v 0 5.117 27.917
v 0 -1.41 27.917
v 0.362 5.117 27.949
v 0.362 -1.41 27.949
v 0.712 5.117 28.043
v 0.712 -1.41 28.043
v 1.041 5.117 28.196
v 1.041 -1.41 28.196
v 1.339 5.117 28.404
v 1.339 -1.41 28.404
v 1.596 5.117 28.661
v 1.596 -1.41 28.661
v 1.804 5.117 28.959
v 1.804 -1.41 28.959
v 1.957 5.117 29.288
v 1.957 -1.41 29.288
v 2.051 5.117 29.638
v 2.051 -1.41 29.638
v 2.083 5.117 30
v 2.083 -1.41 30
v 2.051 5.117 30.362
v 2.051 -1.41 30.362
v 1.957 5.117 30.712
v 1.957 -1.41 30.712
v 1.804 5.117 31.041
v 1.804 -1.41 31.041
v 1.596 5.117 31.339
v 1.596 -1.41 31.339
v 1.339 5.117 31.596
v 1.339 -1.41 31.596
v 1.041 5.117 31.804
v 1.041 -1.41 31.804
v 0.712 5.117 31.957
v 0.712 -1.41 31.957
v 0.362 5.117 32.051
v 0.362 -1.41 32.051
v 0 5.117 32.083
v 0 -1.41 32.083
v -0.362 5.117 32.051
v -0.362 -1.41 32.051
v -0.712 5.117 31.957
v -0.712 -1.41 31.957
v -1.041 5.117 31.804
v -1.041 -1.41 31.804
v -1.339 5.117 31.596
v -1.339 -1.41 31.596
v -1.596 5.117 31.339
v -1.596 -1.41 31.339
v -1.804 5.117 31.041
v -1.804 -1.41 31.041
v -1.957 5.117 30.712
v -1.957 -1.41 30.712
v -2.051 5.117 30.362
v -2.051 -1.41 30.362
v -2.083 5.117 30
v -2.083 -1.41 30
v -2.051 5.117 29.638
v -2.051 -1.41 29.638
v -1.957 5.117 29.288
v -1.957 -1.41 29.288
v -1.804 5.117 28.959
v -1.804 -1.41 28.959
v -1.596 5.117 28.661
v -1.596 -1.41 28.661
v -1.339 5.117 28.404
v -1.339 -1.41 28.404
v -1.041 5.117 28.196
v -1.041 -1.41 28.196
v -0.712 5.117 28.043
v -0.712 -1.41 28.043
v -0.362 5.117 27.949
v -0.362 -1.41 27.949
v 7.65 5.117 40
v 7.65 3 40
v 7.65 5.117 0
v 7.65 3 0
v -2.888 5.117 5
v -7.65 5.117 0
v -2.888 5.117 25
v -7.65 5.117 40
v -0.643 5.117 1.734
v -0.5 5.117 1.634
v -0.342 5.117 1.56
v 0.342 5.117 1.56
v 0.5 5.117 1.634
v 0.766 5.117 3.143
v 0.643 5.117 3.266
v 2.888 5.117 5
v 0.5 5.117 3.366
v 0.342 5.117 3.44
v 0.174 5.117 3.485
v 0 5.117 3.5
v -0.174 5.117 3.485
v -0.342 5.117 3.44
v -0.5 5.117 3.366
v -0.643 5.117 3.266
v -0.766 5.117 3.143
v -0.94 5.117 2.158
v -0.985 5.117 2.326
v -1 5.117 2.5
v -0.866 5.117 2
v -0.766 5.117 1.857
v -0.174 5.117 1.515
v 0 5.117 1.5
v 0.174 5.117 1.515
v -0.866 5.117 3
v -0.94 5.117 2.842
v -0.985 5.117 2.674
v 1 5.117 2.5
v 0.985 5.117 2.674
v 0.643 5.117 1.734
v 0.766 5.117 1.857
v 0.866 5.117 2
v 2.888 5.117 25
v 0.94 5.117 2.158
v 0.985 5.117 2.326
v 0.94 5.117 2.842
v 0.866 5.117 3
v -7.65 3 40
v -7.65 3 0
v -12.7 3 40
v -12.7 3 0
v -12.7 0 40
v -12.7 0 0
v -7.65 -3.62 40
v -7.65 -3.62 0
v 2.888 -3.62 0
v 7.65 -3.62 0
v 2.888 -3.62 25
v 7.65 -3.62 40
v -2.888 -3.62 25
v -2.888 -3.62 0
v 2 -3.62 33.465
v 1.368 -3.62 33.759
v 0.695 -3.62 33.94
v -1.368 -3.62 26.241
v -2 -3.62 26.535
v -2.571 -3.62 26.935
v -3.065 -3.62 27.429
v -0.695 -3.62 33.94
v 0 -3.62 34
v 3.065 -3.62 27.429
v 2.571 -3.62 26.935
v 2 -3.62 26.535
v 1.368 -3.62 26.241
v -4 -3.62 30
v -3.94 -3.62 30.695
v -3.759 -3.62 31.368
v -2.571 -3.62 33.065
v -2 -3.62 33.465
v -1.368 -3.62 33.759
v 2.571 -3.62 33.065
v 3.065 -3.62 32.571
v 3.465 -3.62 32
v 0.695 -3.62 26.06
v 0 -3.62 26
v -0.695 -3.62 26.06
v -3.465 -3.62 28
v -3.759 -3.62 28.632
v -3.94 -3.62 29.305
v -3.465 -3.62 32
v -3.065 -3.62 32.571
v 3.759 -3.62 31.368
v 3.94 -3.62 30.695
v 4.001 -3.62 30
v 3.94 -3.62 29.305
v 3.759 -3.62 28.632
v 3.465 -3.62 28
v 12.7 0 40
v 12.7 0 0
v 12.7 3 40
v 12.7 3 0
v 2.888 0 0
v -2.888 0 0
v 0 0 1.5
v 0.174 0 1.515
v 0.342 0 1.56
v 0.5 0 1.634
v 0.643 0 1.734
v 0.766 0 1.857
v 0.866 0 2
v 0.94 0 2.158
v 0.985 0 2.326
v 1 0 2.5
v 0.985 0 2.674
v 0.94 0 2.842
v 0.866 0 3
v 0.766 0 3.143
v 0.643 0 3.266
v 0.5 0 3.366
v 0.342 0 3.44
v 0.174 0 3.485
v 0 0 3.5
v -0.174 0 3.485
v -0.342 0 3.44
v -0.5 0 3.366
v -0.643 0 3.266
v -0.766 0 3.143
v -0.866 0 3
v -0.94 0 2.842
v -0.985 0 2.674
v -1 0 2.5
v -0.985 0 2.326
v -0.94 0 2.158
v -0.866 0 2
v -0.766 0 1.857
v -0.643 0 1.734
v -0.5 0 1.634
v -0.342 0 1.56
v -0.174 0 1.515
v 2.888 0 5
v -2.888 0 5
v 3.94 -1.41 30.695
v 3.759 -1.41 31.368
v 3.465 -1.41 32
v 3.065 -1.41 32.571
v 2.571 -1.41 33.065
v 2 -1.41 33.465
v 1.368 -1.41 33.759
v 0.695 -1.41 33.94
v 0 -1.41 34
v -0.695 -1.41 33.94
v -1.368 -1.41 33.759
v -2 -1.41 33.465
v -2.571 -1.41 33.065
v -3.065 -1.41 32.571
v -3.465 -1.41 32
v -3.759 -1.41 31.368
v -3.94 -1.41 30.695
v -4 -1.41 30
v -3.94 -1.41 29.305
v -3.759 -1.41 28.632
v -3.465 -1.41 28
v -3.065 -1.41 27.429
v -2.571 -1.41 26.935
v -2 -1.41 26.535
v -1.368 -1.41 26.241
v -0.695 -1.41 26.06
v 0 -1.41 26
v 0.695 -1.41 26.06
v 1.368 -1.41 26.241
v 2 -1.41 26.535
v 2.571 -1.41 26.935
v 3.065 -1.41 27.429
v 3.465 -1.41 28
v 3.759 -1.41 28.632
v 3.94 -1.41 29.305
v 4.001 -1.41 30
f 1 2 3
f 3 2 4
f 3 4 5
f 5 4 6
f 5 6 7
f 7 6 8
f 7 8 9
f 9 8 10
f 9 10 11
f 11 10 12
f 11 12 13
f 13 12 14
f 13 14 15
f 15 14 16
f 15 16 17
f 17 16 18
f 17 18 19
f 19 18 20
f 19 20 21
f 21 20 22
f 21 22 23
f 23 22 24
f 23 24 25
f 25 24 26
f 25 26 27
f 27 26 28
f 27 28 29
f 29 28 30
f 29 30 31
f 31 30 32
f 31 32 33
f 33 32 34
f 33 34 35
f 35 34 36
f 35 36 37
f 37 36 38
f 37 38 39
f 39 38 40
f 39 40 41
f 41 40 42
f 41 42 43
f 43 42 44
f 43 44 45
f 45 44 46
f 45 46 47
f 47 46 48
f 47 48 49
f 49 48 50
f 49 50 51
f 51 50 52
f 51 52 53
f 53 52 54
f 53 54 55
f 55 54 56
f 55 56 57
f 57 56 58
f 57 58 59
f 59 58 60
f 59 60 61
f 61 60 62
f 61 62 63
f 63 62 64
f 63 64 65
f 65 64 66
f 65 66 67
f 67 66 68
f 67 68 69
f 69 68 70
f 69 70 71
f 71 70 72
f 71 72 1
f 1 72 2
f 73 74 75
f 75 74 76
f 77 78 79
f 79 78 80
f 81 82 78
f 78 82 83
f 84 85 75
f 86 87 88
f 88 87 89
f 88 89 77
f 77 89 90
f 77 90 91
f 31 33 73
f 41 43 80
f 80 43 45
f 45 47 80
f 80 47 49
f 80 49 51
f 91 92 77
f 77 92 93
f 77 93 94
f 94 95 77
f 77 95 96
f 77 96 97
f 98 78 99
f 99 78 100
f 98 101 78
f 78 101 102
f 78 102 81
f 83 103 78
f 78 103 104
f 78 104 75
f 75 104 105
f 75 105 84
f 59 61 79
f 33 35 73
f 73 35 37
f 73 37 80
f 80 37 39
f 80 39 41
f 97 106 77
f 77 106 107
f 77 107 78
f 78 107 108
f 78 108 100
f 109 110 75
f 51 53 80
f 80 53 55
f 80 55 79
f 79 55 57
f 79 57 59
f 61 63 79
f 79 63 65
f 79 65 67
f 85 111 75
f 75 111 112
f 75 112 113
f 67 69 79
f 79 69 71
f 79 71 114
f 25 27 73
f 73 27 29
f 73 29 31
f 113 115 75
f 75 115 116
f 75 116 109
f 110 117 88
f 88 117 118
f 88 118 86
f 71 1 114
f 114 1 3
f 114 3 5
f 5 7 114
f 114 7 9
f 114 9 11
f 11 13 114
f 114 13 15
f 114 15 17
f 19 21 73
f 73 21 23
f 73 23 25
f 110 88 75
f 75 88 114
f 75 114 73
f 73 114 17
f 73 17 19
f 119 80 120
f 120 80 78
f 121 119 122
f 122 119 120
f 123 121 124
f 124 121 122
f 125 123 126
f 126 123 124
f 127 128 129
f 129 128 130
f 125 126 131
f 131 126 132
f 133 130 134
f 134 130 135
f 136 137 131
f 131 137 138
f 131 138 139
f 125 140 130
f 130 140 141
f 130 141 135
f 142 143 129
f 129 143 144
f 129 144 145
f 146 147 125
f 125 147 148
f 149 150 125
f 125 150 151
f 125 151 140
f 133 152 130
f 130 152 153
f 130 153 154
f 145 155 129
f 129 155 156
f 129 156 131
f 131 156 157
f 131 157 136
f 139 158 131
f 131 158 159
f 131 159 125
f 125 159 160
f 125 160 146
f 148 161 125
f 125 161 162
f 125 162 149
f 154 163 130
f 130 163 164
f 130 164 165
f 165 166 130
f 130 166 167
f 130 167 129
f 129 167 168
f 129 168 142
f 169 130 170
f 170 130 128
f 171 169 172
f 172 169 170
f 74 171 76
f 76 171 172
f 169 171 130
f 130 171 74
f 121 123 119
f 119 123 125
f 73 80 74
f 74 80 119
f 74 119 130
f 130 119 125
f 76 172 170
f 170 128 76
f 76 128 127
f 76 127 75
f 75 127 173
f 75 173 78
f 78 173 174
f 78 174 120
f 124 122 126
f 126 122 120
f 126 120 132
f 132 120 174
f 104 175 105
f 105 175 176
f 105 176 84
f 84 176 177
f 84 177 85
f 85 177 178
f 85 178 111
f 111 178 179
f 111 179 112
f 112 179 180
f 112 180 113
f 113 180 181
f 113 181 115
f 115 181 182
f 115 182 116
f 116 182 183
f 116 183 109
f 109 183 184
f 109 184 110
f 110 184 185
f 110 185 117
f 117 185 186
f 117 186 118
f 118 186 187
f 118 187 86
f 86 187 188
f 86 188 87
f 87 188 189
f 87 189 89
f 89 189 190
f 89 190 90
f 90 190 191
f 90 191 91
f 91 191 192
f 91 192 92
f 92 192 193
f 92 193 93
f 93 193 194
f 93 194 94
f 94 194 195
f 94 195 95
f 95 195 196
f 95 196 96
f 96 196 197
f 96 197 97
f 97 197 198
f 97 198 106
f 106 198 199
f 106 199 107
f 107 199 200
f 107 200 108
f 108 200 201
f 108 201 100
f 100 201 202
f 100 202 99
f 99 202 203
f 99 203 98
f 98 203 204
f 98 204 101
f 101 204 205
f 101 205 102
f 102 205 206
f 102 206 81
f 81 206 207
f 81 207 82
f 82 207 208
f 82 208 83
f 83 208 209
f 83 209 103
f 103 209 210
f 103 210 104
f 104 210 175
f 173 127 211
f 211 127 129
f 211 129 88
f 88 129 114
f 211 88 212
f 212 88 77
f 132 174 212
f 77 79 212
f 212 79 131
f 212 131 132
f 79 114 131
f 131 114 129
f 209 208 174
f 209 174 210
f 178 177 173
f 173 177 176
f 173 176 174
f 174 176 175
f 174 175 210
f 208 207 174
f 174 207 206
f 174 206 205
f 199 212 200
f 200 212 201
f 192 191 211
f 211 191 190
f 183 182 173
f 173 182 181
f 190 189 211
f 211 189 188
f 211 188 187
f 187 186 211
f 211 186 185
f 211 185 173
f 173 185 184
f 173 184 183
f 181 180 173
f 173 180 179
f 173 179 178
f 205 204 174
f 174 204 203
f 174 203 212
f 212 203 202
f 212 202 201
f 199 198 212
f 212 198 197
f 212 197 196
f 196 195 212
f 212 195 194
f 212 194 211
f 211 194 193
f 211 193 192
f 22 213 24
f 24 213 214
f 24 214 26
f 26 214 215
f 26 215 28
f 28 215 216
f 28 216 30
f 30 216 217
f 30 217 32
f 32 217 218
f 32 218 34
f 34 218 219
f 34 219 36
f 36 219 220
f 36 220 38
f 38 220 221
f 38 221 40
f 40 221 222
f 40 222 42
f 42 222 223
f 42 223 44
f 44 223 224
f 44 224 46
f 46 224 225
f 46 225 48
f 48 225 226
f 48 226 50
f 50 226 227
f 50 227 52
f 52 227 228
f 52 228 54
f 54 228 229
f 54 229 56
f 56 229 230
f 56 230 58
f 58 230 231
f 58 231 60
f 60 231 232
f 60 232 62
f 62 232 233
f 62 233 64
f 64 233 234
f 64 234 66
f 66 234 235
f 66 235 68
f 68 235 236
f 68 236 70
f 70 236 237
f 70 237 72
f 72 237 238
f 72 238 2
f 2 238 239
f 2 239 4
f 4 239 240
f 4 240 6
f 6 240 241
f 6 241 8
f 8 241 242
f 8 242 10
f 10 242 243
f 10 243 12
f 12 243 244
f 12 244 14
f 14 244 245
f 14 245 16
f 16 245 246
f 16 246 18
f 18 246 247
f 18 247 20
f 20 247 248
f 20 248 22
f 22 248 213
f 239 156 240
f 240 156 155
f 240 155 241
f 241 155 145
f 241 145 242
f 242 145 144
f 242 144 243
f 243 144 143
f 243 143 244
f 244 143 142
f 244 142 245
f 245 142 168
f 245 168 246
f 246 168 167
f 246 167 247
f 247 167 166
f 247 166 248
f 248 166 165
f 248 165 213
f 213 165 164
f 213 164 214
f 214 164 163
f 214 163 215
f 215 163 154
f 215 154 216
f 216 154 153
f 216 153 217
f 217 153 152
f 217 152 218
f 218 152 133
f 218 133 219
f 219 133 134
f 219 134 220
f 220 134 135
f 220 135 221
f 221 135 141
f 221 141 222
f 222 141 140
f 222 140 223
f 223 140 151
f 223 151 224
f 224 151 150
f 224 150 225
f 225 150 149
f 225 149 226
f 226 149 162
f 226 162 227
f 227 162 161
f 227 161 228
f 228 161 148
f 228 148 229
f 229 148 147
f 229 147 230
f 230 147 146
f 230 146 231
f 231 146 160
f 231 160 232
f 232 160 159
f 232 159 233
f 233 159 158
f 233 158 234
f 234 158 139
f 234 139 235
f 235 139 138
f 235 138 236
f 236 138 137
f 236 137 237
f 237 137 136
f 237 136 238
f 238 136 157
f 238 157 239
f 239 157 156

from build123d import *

# Parameters (mm, degrees)
BOSS_EXTRUDE1_DEPTH = 40
SKETCH2_R           = 2.0828
SKETCH2_R_2         = 1
CUT_EXTRUDE1_DEPTH  = 43.867462538
SKETCH3_W           = 5.776667402
SKETCH3_H           = 20
CUT_EXTRUDE2_DEPTH  = 43.867462538
SKETCH4_W           = 5.776667402
SKETCH4_H           = 5
CUT_EXTRUDE3_DEPTH  = 3.62
SKETCH5_R           = 4.0005
CUT_EXTRUDE4_DEPTH  = 2.2098


with BuildPart() as part:
    # Sketch1 → Boss-Extrude1 (new body)
    with BuildSketch(Plane.XY):
        Polygon((-7.65, 5.116666667), (7.65, 5.116666667), (7.65, 3), (12.7, 3), (12.7, 0), (7.65, -3.62), (-7.65, -3.62), (-12.7, 0), (-12.7, 3), (-7.65, 3), align=None)
    extrude(amount=BOSS_EXTRUDE1_DEPTH)

    # Sketch2 → Cut-Extrude1 (cut, through all)
    with BuildSketch(Plane.XZ.offset(3.62)):
        with Locations(Location((0, 30, 0), (0, 0, 270))):
            Circle(SKETCH2_R)
        with Locations(Location((0, 2.5, 0), (0, 0, 270))):
            Circle(SKETCH2_R_2)
    extrude(amount=-CUT_EXTRUDE1_DEPTH, mode=Mode.SUBTRACT)

    # Sketch3 → Cut-Extrude2 (cut, through all)
    with BuildSketch(Plane.XZ.offset(3.62)):
        with Locations((0, 15)):
            Rectangle(SKETCH3_W, SKETCH3_H)
    extrude(amount=-CUT_EXTRUDE2_DEPTH, mode=Mode.SUBTRACT)

    # Sketch4 → Cut-Extrude3 (cut)
    with BuildSketch(Plane.XZ.offset(3.62)):
        with Locations((0, 2.5)):
            Rectangle(SKETCH4_W, SKETCH4_H)
    extrude(amount=-CUT_EXTRUDE3_DEPTH, mode=Mode.SUBTRACT)

    # Sketch5 → Cut-Extrude4 (cut)
    with BuildSketch(Plane.XZ.offset(3.62)):
        with Locations(Location((0, 30, 0), (0, 0, 270))):
            Circle(SKETCH5_R)
    extrude(amount=-CUT_EXTRUDE4_DEPTH, mode=Mode.SUBTRACT)


solid = part.part
